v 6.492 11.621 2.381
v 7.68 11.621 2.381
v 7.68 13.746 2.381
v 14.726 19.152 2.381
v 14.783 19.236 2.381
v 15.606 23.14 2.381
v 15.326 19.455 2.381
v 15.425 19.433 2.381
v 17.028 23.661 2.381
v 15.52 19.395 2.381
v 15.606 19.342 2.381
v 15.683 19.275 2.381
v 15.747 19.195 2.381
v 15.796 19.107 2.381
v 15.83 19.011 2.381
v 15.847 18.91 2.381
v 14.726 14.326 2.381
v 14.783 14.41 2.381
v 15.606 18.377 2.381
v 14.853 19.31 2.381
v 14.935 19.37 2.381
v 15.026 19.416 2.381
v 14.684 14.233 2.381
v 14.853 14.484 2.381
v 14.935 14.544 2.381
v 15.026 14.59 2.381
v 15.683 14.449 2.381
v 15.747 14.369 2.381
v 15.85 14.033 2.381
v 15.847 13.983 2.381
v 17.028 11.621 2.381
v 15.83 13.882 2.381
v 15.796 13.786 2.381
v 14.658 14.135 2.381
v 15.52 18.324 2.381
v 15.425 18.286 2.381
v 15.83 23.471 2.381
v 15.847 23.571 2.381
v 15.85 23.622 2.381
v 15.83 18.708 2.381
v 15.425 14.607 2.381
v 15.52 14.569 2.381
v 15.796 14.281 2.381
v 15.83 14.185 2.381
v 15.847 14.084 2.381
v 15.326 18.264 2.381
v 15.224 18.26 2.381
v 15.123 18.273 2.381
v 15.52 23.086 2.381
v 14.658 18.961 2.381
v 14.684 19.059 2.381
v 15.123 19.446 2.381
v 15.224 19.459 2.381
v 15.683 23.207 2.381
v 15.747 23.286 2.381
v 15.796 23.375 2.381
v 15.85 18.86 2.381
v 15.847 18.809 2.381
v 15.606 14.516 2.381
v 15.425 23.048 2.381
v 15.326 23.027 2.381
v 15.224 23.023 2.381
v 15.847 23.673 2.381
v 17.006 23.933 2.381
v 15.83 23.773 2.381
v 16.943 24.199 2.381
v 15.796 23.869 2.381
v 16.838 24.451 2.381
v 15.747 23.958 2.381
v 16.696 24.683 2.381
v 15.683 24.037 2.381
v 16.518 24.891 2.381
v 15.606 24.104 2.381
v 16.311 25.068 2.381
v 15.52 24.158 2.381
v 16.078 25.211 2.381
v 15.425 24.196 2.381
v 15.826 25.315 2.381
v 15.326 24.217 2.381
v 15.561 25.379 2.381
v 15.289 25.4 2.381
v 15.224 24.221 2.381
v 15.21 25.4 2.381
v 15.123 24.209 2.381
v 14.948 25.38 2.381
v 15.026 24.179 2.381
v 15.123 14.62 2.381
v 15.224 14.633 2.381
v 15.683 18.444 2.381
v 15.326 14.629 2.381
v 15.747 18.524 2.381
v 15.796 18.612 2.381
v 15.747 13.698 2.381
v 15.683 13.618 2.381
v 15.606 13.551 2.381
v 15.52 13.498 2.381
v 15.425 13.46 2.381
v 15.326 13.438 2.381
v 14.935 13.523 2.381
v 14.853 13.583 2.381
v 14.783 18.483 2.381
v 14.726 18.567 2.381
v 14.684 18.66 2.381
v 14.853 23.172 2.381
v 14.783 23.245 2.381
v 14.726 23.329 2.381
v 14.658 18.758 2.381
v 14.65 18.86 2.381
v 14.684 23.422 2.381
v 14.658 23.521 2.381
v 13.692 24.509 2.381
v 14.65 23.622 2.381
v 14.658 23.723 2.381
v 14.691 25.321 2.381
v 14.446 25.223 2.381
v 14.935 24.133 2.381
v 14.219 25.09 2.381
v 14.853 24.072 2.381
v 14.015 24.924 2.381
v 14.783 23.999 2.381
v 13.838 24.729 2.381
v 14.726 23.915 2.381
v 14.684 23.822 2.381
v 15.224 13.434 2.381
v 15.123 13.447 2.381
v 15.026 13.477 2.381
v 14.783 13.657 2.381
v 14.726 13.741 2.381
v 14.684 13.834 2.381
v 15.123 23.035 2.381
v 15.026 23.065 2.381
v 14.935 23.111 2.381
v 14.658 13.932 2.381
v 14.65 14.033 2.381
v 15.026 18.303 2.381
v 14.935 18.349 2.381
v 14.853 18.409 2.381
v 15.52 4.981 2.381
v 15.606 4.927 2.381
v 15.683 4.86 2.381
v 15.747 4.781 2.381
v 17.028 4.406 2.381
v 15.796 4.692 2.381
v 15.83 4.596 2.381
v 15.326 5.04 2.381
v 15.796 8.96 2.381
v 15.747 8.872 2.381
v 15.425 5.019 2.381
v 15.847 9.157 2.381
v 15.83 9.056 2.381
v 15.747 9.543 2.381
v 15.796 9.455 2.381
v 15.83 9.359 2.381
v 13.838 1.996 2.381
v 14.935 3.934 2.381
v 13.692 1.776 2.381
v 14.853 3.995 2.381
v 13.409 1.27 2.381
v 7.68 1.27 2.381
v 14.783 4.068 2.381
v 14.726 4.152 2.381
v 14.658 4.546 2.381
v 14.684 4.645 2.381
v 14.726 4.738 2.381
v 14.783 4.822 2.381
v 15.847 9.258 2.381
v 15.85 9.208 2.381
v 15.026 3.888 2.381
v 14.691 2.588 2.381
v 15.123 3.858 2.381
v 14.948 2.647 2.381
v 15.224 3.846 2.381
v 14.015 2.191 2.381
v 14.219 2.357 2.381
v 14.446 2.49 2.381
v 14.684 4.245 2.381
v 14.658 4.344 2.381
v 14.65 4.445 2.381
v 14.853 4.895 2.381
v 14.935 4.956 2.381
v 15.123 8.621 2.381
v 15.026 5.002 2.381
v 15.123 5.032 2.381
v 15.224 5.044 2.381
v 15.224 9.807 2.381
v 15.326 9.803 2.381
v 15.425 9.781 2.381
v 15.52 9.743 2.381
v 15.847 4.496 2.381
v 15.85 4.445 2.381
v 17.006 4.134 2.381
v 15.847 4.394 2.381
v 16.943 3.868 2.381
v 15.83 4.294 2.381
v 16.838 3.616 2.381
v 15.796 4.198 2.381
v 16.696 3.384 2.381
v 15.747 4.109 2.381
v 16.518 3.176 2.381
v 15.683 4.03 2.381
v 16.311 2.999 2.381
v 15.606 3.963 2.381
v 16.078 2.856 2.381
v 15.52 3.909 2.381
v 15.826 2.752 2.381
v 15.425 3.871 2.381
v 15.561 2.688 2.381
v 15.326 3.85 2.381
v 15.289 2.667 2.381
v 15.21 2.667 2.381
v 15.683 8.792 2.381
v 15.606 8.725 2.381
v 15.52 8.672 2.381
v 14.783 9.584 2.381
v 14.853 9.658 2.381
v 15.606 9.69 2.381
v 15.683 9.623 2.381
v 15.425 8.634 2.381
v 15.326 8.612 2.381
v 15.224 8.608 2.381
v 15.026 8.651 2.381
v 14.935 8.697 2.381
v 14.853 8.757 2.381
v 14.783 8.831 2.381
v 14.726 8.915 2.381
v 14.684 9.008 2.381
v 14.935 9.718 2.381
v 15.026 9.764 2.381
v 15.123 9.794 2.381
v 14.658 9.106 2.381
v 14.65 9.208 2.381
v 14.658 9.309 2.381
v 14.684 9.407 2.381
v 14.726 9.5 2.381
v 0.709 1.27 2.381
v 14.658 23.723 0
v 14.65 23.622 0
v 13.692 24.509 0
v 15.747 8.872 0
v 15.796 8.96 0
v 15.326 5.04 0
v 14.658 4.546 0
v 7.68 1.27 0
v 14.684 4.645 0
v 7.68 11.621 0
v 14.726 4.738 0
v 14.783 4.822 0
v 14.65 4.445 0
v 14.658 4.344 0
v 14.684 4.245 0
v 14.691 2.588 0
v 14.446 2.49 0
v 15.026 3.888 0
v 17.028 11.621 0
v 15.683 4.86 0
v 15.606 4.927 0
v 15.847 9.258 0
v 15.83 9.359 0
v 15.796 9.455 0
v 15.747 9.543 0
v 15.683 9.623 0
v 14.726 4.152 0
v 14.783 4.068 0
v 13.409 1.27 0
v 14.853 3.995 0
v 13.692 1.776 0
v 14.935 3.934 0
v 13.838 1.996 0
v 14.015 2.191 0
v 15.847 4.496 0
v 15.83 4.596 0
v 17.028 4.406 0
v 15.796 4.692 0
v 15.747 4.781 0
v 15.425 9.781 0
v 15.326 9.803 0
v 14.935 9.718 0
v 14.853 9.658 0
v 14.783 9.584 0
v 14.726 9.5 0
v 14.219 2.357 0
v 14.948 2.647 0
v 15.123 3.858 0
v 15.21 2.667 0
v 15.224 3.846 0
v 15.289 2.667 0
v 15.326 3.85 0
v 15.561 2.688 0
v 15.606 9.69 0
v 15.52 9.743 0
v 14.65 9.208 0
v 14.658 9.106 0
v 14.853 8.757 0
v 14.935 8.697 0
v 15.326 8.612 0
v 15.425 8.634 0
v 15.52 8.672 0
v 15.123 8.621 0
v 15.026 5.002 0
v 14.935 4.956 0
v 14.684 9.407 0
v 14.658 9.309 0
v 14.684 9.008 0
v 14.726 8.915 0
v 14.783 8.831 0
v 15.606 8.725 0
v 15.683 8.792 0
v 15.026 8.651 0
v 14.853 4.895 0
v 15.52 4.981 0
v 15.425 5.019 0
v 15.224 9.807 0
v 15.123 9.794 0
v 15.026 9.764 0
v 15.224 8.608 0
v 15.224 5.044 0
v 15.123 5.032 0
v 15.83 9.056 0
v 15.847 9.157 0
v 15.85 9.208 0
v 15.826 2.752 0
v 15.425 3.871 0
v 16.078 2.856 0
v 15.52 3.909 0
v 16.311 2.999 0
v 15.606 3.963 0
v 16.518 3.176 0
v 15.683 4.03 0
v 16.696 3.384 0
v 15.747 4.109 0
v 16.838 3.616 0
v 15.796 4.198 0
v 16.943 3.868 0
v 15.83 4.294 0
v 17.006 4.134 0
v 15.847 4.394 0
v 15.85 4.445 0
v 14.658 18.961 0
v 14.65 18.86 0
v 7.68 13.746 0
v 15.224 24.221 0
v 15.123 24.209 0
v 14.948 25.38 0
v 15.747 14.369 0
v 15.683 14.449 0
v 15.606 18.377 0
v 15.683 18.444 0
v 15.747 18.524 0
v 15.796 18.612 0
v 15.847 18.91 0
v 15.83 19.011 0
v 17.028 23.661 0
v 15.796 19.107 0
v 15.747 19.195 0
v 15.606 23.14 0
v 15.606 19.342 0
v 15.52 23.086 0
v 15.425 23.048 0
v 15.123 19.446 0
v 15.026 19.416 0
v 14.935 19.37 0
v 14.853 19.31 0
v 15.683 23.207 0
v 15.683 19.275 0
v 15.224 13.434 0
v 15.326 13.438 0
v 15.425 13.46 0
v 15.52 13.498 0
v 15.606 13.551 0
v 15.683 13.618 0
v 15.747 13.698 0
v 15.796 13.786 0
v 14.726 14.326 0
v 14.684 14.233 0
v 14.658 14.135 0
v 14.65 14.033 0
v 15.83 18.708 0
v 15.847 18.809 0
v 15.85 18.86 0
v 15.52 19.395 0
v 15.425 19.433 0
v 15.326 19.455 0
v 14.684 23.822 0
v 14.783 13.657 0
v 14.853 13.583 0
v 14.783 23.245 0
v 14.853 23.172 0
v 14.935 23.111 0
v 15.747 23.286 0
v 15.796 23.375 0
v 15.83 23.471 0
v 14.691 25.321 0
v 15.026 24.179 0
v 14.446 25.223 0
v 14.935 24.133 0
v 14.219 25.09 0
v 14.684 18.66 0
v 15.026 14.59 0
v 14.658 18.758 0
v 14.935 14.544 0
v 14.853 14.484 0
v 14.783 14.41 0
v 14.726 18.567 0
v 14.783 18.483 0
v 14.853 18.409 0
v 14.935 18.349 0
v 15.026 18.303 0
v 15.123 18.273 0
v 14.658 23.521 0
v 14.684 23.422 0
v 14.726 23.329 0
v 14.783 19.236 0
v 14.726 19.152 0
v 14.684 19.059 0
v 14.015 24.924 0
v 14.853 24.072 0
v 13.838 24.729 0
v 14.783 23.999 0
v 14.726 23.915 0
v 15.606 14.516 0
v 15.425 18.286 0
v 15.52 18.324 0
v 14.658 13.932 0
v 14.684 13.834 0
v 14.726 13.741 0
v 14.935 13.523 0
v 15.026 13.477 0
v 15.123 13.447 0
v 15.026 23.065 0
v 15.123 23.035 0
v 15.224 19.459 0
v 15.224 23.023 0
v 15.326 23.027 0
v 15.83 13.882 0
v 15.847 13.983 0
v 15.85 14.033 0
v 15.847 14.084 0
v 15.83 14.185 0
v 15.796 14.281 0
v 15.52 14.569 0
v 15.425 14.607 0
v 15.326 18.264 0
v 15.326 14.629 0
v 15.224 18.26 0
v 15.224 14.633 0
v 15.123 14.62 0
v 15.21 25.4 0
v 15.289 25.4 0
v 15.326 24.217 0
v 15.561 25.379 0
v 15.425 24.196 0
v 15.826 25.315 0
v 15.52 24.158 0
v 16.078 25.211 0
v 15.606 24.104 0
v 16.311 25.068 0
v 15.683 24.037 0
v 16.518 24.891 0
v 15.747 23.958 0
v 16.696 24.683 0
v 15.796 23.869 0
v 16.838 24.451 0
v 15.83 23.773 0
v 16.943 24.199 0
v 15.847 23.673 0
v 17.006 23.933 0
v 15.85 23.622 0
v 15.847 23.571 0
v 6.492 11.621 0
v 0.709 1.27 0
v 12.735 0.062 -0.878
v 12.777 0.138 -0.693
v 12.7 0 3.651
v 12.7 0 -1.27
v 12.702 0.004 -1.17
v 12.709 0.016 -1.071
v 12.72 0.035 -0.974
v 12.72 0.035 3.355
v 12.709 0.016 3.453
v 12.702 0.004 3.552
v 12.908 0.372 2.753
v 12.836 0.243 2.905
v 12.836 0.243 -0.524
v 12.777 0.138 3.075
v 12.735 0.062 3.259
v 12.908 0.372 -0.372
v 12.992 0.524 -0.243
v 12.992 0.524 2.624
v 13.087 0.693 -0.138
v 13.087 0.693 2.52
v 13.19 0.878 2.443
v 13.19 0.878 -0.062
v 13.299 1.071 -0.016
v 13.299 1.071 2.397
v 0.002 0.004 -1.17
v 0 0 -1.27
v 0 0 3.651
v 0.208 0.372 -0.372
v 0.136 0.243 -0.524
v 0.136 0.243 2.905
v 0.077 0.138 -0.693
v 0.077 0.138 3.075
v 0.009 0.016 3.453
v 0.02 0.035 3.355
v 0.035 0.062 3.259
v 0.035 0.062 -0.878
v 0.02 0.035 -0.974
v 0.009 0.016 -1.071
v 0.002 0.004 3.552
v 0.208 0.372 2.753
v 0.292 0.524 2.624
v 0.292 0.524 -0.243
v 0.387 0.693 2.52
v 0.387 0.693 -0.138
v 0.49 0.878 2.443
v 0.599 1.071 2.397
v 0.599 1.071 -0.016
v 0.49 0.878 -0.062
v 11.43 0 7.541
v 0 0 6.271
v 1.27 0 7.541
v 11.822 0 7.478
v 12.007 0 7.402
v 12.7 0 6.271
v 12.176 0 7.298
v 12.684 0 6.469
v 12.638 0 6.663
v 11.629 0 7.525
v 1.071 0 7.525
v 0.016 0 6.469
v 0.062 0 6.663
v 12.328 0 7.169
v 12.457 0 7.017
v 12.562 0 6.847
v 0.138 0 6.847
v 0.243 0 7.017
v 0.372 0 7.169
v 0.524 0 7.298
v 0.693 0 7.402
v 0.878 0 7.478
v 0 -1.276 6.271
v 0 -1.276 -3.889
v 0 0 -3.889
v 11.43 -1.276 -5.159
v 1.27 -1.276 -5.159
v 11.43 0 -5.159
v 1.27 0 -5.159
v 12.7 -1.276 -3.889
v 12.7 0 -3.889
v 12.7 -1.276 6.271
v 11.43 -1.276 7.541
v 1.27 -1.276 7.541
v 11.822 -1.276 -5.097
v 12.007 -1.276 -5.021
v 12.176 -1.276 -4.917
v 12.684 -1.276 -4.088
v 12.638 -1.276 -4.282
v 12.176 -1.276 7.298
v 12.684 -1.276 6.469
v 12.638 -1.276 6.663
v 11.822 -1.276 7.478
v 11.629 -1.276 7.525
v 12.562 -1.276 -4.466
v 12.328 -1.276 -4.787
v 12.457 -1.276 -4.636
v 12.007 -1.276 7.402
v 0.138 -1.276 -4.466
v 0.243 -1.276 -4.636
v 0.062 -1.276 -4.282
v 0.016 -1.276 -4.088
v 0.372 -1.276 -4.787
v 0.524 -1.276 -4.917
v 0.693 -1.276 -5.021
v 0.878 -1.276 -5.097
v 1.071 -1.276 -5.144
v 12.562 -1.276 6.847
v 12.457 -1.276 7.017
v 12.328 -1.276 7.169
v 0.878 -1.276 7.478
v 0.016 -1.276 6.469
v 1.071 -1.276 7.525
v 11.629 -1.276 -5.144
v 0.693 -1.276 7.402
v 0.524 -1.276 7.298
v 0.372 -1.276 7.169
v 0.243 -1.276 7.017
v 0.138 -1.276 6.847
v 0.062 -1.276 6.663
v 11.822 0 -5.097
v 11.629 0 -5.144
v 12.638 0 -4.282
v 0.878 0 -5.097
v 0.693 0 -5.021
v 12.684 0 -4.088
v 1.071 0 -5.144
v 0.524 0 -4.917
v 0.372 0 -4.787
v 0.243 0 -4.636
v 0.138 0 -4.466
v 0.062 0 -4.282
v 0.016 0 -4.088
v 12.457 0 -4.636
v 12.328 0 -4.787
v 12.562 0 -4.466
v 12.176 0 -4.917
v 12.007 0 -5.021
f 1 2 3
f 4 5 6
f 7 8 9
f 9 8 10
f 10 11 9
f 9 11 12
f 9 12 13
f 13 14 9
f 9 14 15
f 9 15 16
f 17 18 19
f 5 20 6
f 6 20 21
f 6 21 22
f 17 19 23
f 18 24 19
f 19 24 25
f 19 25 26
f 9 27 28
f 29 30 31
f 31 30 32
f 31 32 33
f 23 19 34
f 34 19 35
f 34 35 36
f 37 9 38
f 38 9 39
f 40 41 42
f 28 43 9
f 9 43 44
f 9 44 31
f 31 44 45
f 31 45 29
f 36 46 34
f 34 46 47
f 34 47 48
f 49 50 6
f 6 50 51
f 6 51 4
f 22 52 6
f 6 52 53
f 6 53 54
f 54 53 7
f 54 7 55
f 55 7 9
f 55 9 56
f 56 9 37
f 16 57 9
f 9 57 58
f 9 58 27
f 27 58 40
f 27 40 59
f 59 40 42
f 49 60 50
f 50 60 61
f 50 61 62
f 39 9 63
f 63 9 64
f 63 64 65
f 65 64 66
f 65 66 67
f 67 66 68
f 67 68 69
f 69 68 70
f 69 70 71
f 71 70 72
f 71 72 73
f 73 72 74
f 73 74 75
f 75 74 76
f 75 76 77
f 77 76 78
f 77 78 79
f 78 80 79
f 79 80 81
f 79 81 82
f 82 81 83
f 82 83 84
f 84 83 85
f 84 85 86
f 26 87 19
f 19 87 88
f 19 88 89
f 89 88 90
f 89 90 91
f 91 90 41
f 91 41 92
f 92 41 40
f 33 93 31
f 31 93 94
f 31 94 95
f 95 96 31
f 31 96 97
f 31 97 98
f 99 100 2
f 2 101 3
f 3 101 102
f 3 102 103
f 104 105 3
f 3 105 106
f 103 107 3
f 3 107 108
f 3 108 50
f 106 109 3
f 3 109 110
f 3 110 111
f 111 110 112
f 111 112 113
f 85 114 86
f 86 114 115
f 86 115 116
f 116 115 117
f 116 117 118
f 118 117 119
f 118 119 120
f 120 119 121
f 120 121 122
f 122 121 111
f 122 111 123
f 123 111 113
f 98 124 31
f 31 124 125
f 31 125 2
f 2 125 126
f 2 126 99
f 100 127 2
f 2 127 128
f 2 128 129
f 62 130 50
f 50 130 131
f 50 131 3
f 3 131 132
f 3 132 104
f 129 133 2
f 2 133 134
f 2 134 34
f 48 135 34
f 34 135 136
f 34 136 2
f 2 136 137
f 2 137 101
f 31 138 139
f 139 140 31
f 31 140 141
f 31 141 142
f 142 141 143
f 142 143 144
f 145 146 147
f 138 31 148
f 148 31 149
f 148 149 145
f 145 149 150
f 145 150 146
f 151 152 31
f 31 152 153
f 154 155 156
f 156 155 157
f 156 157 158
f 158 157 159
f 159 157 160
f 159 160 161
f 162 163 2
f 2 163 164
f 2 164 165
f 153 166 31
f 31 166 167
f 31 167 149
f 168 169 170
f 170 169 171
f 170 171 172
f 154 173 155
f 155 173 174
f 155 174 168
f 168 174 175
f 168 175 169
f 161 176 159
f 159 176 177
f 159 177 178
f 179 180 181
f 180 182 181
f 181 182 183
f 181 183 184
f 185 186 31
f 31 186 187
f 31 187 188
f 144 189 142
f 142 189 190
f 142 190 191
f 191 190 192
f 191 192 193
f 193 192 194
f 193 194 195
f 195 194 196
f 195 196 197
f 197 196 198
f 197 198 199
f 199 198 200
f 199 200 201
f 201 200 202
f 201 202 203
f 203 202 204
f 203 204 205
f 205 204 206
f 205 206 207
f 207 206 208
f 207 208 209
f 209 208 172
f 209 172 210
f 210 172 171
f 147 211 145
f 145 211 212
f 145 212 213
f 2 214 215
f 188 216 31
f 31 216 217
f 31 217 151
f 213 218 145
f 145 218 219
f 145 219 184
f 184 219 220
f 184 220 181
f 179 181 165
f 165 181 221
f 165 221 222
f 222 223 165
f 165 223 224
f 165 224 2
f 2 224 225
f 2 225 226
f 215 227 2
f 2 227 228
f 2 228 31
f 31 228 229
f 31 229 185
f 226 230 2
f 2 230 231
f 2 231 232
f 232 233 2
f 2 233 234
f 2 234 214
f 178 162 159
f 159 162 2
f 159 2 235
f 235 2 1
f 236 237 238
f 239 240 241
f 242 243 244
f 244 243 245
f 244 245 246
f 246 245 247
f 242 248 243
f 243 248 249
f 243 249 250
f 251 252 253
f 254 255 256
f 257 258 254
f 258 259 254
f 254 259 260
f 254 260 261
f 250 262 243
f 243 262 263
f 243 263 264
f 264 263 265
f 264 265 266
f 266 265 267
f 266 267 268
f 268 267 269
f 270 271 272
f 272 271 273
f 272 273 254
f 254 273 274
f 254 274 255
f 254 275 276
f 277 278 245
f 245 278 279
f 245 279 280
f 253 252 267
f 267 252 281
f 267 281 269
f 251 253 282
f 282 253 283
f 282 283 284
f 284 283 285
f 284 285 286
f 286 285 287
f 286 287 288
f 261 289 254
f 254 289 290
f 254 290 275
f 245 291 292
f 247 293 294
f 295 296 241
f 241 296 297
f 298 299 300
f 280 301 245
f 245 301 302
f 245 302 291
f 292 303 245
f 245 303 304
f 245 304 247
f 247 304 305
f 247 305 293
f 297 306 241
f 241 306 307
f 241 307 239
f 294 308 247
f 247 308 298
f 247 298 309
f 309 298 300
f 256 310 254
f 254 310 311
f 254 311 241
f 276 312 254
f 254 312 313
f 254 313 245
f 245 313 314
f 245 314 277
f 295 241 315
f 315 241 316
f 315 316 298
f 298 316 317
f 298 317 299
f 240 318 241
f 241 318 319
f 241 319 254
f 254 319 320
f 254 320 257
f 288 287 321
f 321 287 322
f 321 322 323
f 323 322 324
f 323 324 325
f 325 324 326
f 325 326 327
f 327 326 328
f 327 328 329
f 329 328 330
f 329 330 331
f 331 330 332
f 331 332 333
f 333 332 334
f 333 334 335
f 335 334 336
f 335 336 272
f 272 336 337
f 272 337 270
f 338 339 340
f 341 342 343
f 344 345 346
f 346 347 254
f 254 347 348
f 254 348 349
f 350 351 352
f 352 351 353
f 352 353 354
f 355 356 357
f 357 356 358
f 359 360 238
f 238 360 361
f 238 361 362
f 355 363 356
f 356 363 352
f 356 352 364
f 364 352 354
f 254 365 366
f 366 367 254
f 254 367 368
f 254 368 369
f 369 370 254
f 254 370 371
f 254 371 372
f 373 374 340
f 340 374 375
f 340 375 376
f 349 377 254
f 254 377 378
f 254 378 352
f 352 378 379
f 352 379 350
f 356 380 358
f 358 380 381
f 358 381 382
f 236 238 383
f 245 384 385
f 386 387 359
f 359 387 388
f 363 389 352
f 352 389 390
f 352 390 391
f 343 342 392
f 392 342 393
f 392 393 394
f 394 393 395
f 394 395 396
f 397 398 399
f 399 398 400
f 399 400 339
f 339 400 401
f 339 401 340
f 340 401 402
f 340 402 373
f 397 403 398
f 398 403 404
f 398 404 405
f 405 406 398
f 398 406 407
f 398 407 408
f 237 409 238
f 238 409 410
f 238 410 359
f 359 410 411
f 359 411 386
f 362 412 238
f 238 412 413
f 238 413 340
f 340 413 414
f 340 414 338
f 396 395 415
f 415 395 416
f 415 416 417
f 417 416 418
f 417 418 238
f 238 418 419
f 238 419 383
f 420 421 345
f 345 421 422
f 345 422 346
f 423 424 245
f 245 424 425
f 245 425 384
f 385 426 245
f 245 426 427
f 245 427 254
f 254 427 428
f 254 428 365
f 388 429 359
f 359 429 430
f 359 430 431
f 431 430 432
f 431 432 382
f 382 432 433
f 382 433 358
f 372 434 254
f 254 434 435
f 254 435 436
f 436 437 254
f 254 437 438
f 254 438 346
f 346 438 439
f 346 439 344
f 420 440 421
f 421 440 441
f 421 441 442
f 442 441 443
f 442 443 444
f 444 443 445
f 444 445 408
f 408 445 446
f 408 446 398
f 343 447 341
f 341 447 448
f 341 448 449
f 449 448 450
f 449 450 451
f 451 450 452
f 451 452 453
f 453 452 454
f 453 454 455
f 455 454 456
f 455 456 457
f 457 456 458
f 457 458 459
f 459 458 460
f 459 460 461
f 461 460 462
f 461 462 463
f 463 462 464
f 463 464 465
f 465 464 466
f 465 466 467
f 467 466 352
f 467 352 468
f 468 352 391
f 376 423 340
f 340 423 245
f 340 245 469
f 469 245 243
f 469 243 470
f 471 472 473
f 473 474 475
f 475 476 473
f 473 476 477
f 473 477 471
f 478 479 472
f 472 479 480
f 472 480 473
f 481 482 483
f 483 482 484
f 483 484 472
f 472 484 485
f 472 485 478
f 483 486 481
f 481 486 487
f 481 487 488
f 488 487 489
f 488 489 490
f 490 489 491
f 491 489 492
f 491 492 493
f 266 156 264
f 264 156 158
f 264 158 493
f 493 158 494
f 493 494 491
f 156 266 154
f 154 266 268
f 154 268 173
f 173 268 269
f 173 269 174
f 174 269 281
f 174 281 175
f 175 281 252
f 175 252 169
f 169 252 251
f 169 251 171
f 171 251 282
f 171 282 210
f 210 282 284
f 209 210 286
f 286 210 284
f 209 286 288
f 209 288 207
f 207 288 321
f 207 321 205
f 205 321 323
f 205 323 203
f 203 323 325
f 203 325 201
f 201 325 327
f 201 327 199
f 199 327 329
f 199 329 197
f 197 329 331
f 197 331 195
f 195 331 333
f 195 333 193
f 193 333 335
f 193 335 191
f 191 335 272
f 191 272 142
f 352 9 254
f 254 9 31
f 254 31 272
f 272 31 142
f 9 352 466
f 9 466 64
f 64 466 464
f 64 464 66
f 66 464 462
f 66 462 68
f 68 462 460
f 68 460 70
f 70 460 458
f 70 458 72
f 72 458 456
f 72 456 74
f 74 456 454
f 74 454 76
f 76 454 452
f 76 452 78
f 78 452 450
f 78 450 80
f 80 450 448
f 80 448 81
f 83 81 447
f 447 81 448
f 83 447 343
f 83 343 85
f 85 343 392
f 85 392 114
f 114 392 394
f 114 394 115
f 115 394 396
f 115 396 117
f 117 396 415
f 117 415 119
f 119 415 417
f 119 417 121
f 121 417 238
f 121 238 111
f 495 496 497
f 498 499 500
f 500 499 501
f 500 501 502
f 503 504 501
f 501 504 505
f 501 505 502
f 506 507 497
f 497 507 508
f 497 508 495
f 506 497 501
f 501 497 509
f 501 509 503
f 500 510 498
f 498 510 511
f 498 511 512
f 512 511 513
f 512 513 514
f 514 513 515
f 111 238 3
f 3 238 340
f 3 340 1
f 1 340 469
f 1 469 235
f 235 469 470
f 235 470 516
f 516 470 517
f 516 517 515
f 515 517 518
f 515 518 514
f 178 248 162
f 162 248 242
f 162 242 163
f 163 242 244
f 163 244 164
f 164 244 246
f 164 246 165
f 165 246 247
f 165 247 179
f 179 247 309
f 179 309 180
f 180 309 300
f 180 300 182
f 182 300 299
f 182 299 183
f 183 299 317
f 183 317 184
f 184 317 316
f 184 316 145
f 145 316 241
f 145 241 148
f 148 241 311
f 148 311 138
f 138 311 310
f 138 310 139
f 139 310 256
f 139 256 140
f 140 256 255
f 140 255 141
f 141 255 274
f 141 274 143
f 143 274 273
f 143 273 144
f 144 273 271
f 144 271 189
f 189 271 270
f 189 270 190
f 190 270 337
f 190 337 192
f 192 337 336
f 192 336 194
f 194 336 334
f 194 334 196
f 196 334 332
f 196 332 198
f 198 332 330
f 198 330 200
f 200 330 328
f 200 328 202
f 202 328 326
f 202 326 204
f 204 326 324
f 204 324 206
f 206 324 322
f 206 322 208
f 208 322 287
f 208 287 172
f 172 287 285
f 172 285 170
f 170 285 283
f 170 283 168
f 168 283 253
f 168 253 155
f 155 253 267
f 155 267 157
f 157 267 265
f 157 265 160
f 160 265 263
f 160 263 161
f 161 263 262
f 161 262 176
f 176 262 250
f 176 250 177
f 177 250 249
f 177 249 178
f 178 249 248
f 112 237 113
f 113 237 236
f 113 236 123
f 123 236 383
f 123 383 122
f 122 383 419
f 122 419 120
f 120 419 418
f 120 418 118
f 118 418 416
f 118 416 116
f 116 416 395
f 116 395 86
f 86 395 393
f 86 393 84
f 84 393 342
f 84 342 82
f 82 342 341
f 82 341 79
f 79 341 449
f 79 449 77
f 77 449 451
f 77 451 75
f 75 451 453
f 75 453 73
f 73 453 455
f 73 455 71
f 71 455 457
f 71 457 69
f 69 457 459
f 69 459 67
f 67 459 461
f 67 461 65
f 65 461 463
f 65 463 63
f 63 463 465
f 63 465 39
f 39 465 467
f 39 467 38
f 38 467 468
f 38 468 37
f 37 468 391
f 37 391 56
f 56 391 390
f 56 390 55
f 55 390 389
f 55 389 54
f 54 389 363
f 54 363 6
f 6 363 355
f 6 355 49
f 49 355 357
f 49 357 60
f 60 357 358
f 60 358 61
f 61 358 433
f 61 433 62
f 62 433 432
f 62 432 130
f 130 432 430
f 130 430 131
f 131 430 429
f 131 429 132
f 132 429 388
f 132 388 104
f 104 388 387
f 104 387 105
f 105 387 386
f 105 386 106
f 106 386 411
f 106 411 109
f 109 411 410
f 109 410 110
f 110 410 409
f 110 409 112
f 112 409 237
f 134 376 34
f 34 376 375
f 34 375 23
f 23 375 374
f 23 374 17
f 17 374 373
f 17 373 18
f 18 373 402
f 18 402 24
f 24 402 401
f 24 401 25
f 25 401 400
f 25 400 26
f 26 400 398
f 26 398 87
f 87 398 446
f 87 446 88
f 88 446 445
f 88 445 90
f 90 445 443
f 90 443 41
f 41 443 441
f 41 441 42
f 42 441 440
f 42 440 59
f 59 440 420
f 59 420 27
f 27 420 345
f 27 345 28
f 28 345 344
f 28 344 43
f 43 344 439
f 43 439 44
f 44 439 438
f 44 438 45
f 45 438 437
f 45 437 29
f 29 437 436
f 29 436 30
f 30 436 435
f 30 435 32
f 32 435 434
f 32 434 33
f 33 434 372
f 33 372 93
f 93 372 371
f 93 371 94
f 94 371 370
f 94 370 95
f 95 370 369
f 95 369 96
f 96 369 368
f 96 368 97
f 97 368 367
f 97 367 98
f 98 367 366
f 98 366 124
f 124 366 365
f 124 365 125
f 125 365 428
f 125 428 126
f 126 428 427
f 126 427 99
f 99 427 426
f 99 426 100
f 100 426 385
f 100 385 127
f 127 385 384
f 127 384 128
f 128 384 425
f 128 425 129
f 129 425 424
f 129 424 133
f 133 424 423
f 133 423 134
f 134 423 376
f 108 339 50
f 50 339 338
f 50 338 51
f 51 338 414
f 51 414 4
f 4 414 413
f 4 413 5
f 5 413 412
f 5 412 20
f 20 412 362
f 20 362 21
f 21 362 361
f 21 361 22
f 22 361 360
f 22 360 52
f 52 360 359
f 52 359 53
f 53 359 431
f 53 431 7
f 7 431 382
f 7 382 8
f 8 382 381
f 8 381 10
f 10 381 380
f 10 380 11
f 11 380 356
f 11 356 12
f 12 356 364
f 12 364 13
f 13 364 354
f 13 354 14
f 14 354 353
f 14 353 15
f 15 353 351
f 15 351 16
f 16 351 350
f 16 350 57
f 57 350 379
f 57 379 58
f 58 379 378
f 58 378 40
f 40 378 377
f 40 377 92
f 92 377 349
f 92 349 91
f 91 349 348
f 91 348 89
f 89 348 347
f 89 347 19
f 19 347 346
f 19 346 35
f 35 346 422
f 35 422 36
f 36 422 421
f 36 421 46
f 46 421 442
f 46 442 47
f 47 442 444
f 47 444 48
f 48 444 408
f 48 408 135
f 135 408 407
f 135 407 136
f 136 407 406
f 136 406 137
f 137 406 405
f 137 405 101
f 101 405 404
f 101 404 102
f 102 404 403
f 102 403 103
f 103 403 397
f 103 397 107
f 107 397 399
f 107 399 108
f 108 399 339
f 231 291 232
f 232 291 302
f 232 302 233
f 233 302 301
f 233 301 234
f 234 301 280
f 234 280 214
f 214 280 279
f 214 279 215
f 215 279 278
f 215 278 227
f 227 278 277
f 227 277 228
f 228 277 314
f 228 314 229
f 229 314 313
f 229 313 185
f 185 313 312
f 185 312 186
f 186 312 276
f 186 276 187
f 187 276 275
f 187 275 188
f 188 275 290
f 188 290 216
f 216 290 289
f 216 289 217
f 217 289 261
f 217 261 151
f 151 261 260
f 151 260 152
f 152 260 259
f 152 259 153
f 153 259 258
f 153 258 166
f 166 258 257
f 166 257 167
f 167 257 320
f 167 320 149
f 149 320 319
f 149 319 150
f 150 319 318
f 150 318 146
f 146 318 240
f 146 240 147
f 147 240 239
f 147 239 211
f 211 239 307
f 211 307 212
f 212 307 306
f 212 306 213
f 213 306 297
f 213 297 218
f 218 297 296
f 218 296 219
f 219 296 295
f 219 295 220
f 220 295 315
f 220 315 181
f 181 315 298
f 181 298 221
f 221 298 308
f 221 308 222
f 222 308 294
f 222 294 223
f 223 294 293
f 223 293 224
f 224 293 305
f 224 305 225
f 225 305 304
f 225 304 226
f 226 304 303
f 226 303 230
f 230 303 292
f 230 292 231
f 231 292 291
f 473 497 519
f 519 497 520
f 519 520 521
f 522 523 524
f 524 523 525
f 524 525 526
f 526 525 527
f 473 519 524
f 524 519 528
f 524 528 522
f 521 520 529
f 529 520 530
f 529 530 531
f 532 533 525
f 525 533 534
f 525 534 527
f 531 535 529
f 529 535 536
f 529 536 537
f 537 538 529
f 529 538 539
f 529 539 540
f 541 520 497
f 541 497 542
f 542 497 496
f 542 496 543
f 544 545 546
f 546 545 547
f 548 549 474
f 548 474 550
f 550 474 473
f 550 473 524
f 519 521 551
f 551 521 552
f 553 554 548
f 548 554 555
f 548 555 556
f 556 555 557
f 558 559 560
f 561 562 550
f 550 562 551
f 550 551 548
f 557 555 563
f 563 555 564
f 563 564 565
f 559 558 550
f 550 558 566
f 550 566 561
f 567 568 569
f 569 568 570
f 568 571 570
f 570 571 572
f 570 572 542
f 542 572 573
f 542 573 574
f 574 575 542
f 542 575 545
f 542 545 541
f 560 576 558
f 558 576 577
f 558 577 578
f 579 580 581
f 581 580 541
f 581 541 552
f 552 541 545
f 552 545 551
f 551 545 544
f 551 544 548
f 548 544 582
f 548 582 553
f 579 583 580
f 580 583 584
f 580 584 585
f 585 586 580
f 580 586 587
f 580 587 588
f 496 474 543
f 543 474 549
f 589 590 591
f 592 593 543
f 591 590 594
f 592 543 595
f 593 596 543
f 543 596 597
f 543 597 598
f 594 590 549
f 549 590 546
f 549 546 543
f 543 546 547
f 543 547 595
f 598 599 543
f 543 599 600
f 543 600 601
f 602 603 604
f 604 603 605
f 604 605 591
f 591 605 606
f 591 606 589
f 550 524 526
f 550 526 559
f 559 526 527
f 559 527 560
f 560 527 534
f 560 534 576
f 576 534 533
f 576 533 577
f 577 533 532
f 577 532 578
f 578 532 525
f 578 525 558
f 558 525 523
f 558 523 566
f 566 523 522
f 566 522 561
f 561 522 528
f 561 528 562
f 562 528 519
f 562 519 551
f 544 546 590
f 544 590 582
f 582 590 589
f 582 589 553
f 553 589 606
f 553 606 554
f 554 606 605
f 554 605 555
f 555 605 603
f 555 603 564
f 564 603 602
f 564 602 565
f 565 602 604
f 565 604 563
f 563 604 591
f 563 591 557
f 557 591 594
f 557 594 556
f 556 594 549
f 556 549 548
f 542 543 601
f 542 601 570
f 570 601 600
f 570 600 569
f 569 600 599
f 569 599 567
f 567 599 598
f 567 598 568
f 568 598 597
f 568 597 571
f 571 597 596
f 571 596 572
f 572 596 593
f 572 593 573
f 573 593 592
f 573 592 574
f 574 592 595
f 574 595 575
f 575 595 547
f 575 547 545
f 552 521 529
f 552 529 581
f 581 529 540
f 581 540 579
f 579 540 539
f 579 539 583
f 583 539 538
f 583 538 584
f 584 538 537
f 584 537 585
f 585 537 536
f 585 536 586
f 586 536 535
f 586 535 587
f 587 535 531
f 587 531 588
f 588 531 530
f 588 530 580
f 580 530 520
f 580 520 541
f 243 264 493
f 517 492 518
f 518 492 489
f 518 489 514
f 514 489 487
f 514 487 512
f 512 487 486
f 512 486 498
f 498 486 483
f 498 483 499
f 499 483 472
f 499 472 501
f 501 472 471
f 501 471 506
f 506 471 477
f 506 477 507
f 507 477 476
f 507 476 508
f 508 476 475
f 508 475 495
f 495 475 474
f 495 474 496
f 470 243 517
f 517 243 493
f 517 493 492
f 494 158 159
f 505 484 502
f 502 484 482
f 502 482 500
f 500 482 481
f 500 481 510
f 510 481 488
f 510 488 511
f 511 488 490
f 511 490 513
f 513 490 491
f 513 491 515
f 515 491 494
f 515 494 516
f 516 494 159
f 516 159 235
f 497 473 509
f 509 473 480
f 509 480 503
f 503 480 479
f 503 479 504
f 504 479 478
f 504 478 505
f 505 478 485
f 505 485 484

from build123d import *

# Parameters (mm, degrees)
SKETCH1_R           = 0.5999988
BOSS_EXTRUDE1_DEPTH = 2.38125
SKETCH2_W           = 12.7
SKETCH2_H           = 12.7
BOSS_EXTRUDE2_DEPTH = 1.27635
FILLET1_R           = 1.27


with BuildPart() as part:
    # Sketch1 → Boss-Extrude1 (new body)
    with BuildSketch(Plane.XY):
        with BuildLine():
            Line((0, 0), (13.692383752, 24.509366916))
            ThreePointArc((13.692383752, 24.509366916), (14.330250369, 25.160900132), (15.210137069, 25.4))
            Line((15.210137069, 25.4), (15.289057138, 25.4))
            ThreePointArc((15.289057138, 25.4), (16.518390537, 24.890793433), (17.027597104, 23.661460034))
            Line((17.027597104, 23.661460034), (17.027597104, 4.405539966))
            ThreePointArc((17.027597104, 4.405539966), (16.518390537, 3.176206567), (15.289057138, 2.667))
            Line((15.289057138, 2.667), (15.210137069, 2.667))
            ThreePointArc((15.210137069, 2.667), (14.330250369, 2.427900132), (13.692383752, 1.776366916))
            Line((13.692383752, 1.776366916), (12.7, 0))
            Line((12.7, 0), (0, 0))
        make_face()
        with Locations((15.249597104, 4.445)):
            Circle(SKETCH1_R, mode=Mode.SUBTRACT)
        with Locations((15.249597104, 23.622)):
            Circle(SKETCH1_R, mode=Mode.SUBTRACT)
        with Locations((15.249597104, 14.0335)):
            Circle(SKETCH1_R, mode=Mode.SUBTRACT)
        with Locations((15.249597104, 18.8595)):
            Circle(SKETCH1_R, mode=Mode.SUBTRACT)
        with Locations((15.249597104, 9.2075)):
            Circle(SKETCH1_R, mode=Mode.SUBTRACT)
    extrude(amount=BOSS_EXTRUDE1_DEPTH)

    # Sketch2 → Boss-Extrude2 (add)
    with BuildSketch(Plane.XZ):
        with Locations((6.35, 1.190625)):
            Rectangle(SKETCH2_W, SKETCH2_H)
    extrude(amount=BOSS_EXTRUDE2_DEPTH)

    # Fillet1
    fillet1_edges = [part.edges().sort_by_distance(p)[0] for p in [
        (6.35, 0, 0),
        (6.35, 0, 2.38125),
        (12.7, -0.638175, 7.540625),
        (12.7, -0.638175, -5.159375),
        (0, -0.638175, -5.159375),
        (0, -0.638175, 7.540625),
    ]]
    fillet(fillet1_edges, radius=FILLET1_R)


solid = part.part
